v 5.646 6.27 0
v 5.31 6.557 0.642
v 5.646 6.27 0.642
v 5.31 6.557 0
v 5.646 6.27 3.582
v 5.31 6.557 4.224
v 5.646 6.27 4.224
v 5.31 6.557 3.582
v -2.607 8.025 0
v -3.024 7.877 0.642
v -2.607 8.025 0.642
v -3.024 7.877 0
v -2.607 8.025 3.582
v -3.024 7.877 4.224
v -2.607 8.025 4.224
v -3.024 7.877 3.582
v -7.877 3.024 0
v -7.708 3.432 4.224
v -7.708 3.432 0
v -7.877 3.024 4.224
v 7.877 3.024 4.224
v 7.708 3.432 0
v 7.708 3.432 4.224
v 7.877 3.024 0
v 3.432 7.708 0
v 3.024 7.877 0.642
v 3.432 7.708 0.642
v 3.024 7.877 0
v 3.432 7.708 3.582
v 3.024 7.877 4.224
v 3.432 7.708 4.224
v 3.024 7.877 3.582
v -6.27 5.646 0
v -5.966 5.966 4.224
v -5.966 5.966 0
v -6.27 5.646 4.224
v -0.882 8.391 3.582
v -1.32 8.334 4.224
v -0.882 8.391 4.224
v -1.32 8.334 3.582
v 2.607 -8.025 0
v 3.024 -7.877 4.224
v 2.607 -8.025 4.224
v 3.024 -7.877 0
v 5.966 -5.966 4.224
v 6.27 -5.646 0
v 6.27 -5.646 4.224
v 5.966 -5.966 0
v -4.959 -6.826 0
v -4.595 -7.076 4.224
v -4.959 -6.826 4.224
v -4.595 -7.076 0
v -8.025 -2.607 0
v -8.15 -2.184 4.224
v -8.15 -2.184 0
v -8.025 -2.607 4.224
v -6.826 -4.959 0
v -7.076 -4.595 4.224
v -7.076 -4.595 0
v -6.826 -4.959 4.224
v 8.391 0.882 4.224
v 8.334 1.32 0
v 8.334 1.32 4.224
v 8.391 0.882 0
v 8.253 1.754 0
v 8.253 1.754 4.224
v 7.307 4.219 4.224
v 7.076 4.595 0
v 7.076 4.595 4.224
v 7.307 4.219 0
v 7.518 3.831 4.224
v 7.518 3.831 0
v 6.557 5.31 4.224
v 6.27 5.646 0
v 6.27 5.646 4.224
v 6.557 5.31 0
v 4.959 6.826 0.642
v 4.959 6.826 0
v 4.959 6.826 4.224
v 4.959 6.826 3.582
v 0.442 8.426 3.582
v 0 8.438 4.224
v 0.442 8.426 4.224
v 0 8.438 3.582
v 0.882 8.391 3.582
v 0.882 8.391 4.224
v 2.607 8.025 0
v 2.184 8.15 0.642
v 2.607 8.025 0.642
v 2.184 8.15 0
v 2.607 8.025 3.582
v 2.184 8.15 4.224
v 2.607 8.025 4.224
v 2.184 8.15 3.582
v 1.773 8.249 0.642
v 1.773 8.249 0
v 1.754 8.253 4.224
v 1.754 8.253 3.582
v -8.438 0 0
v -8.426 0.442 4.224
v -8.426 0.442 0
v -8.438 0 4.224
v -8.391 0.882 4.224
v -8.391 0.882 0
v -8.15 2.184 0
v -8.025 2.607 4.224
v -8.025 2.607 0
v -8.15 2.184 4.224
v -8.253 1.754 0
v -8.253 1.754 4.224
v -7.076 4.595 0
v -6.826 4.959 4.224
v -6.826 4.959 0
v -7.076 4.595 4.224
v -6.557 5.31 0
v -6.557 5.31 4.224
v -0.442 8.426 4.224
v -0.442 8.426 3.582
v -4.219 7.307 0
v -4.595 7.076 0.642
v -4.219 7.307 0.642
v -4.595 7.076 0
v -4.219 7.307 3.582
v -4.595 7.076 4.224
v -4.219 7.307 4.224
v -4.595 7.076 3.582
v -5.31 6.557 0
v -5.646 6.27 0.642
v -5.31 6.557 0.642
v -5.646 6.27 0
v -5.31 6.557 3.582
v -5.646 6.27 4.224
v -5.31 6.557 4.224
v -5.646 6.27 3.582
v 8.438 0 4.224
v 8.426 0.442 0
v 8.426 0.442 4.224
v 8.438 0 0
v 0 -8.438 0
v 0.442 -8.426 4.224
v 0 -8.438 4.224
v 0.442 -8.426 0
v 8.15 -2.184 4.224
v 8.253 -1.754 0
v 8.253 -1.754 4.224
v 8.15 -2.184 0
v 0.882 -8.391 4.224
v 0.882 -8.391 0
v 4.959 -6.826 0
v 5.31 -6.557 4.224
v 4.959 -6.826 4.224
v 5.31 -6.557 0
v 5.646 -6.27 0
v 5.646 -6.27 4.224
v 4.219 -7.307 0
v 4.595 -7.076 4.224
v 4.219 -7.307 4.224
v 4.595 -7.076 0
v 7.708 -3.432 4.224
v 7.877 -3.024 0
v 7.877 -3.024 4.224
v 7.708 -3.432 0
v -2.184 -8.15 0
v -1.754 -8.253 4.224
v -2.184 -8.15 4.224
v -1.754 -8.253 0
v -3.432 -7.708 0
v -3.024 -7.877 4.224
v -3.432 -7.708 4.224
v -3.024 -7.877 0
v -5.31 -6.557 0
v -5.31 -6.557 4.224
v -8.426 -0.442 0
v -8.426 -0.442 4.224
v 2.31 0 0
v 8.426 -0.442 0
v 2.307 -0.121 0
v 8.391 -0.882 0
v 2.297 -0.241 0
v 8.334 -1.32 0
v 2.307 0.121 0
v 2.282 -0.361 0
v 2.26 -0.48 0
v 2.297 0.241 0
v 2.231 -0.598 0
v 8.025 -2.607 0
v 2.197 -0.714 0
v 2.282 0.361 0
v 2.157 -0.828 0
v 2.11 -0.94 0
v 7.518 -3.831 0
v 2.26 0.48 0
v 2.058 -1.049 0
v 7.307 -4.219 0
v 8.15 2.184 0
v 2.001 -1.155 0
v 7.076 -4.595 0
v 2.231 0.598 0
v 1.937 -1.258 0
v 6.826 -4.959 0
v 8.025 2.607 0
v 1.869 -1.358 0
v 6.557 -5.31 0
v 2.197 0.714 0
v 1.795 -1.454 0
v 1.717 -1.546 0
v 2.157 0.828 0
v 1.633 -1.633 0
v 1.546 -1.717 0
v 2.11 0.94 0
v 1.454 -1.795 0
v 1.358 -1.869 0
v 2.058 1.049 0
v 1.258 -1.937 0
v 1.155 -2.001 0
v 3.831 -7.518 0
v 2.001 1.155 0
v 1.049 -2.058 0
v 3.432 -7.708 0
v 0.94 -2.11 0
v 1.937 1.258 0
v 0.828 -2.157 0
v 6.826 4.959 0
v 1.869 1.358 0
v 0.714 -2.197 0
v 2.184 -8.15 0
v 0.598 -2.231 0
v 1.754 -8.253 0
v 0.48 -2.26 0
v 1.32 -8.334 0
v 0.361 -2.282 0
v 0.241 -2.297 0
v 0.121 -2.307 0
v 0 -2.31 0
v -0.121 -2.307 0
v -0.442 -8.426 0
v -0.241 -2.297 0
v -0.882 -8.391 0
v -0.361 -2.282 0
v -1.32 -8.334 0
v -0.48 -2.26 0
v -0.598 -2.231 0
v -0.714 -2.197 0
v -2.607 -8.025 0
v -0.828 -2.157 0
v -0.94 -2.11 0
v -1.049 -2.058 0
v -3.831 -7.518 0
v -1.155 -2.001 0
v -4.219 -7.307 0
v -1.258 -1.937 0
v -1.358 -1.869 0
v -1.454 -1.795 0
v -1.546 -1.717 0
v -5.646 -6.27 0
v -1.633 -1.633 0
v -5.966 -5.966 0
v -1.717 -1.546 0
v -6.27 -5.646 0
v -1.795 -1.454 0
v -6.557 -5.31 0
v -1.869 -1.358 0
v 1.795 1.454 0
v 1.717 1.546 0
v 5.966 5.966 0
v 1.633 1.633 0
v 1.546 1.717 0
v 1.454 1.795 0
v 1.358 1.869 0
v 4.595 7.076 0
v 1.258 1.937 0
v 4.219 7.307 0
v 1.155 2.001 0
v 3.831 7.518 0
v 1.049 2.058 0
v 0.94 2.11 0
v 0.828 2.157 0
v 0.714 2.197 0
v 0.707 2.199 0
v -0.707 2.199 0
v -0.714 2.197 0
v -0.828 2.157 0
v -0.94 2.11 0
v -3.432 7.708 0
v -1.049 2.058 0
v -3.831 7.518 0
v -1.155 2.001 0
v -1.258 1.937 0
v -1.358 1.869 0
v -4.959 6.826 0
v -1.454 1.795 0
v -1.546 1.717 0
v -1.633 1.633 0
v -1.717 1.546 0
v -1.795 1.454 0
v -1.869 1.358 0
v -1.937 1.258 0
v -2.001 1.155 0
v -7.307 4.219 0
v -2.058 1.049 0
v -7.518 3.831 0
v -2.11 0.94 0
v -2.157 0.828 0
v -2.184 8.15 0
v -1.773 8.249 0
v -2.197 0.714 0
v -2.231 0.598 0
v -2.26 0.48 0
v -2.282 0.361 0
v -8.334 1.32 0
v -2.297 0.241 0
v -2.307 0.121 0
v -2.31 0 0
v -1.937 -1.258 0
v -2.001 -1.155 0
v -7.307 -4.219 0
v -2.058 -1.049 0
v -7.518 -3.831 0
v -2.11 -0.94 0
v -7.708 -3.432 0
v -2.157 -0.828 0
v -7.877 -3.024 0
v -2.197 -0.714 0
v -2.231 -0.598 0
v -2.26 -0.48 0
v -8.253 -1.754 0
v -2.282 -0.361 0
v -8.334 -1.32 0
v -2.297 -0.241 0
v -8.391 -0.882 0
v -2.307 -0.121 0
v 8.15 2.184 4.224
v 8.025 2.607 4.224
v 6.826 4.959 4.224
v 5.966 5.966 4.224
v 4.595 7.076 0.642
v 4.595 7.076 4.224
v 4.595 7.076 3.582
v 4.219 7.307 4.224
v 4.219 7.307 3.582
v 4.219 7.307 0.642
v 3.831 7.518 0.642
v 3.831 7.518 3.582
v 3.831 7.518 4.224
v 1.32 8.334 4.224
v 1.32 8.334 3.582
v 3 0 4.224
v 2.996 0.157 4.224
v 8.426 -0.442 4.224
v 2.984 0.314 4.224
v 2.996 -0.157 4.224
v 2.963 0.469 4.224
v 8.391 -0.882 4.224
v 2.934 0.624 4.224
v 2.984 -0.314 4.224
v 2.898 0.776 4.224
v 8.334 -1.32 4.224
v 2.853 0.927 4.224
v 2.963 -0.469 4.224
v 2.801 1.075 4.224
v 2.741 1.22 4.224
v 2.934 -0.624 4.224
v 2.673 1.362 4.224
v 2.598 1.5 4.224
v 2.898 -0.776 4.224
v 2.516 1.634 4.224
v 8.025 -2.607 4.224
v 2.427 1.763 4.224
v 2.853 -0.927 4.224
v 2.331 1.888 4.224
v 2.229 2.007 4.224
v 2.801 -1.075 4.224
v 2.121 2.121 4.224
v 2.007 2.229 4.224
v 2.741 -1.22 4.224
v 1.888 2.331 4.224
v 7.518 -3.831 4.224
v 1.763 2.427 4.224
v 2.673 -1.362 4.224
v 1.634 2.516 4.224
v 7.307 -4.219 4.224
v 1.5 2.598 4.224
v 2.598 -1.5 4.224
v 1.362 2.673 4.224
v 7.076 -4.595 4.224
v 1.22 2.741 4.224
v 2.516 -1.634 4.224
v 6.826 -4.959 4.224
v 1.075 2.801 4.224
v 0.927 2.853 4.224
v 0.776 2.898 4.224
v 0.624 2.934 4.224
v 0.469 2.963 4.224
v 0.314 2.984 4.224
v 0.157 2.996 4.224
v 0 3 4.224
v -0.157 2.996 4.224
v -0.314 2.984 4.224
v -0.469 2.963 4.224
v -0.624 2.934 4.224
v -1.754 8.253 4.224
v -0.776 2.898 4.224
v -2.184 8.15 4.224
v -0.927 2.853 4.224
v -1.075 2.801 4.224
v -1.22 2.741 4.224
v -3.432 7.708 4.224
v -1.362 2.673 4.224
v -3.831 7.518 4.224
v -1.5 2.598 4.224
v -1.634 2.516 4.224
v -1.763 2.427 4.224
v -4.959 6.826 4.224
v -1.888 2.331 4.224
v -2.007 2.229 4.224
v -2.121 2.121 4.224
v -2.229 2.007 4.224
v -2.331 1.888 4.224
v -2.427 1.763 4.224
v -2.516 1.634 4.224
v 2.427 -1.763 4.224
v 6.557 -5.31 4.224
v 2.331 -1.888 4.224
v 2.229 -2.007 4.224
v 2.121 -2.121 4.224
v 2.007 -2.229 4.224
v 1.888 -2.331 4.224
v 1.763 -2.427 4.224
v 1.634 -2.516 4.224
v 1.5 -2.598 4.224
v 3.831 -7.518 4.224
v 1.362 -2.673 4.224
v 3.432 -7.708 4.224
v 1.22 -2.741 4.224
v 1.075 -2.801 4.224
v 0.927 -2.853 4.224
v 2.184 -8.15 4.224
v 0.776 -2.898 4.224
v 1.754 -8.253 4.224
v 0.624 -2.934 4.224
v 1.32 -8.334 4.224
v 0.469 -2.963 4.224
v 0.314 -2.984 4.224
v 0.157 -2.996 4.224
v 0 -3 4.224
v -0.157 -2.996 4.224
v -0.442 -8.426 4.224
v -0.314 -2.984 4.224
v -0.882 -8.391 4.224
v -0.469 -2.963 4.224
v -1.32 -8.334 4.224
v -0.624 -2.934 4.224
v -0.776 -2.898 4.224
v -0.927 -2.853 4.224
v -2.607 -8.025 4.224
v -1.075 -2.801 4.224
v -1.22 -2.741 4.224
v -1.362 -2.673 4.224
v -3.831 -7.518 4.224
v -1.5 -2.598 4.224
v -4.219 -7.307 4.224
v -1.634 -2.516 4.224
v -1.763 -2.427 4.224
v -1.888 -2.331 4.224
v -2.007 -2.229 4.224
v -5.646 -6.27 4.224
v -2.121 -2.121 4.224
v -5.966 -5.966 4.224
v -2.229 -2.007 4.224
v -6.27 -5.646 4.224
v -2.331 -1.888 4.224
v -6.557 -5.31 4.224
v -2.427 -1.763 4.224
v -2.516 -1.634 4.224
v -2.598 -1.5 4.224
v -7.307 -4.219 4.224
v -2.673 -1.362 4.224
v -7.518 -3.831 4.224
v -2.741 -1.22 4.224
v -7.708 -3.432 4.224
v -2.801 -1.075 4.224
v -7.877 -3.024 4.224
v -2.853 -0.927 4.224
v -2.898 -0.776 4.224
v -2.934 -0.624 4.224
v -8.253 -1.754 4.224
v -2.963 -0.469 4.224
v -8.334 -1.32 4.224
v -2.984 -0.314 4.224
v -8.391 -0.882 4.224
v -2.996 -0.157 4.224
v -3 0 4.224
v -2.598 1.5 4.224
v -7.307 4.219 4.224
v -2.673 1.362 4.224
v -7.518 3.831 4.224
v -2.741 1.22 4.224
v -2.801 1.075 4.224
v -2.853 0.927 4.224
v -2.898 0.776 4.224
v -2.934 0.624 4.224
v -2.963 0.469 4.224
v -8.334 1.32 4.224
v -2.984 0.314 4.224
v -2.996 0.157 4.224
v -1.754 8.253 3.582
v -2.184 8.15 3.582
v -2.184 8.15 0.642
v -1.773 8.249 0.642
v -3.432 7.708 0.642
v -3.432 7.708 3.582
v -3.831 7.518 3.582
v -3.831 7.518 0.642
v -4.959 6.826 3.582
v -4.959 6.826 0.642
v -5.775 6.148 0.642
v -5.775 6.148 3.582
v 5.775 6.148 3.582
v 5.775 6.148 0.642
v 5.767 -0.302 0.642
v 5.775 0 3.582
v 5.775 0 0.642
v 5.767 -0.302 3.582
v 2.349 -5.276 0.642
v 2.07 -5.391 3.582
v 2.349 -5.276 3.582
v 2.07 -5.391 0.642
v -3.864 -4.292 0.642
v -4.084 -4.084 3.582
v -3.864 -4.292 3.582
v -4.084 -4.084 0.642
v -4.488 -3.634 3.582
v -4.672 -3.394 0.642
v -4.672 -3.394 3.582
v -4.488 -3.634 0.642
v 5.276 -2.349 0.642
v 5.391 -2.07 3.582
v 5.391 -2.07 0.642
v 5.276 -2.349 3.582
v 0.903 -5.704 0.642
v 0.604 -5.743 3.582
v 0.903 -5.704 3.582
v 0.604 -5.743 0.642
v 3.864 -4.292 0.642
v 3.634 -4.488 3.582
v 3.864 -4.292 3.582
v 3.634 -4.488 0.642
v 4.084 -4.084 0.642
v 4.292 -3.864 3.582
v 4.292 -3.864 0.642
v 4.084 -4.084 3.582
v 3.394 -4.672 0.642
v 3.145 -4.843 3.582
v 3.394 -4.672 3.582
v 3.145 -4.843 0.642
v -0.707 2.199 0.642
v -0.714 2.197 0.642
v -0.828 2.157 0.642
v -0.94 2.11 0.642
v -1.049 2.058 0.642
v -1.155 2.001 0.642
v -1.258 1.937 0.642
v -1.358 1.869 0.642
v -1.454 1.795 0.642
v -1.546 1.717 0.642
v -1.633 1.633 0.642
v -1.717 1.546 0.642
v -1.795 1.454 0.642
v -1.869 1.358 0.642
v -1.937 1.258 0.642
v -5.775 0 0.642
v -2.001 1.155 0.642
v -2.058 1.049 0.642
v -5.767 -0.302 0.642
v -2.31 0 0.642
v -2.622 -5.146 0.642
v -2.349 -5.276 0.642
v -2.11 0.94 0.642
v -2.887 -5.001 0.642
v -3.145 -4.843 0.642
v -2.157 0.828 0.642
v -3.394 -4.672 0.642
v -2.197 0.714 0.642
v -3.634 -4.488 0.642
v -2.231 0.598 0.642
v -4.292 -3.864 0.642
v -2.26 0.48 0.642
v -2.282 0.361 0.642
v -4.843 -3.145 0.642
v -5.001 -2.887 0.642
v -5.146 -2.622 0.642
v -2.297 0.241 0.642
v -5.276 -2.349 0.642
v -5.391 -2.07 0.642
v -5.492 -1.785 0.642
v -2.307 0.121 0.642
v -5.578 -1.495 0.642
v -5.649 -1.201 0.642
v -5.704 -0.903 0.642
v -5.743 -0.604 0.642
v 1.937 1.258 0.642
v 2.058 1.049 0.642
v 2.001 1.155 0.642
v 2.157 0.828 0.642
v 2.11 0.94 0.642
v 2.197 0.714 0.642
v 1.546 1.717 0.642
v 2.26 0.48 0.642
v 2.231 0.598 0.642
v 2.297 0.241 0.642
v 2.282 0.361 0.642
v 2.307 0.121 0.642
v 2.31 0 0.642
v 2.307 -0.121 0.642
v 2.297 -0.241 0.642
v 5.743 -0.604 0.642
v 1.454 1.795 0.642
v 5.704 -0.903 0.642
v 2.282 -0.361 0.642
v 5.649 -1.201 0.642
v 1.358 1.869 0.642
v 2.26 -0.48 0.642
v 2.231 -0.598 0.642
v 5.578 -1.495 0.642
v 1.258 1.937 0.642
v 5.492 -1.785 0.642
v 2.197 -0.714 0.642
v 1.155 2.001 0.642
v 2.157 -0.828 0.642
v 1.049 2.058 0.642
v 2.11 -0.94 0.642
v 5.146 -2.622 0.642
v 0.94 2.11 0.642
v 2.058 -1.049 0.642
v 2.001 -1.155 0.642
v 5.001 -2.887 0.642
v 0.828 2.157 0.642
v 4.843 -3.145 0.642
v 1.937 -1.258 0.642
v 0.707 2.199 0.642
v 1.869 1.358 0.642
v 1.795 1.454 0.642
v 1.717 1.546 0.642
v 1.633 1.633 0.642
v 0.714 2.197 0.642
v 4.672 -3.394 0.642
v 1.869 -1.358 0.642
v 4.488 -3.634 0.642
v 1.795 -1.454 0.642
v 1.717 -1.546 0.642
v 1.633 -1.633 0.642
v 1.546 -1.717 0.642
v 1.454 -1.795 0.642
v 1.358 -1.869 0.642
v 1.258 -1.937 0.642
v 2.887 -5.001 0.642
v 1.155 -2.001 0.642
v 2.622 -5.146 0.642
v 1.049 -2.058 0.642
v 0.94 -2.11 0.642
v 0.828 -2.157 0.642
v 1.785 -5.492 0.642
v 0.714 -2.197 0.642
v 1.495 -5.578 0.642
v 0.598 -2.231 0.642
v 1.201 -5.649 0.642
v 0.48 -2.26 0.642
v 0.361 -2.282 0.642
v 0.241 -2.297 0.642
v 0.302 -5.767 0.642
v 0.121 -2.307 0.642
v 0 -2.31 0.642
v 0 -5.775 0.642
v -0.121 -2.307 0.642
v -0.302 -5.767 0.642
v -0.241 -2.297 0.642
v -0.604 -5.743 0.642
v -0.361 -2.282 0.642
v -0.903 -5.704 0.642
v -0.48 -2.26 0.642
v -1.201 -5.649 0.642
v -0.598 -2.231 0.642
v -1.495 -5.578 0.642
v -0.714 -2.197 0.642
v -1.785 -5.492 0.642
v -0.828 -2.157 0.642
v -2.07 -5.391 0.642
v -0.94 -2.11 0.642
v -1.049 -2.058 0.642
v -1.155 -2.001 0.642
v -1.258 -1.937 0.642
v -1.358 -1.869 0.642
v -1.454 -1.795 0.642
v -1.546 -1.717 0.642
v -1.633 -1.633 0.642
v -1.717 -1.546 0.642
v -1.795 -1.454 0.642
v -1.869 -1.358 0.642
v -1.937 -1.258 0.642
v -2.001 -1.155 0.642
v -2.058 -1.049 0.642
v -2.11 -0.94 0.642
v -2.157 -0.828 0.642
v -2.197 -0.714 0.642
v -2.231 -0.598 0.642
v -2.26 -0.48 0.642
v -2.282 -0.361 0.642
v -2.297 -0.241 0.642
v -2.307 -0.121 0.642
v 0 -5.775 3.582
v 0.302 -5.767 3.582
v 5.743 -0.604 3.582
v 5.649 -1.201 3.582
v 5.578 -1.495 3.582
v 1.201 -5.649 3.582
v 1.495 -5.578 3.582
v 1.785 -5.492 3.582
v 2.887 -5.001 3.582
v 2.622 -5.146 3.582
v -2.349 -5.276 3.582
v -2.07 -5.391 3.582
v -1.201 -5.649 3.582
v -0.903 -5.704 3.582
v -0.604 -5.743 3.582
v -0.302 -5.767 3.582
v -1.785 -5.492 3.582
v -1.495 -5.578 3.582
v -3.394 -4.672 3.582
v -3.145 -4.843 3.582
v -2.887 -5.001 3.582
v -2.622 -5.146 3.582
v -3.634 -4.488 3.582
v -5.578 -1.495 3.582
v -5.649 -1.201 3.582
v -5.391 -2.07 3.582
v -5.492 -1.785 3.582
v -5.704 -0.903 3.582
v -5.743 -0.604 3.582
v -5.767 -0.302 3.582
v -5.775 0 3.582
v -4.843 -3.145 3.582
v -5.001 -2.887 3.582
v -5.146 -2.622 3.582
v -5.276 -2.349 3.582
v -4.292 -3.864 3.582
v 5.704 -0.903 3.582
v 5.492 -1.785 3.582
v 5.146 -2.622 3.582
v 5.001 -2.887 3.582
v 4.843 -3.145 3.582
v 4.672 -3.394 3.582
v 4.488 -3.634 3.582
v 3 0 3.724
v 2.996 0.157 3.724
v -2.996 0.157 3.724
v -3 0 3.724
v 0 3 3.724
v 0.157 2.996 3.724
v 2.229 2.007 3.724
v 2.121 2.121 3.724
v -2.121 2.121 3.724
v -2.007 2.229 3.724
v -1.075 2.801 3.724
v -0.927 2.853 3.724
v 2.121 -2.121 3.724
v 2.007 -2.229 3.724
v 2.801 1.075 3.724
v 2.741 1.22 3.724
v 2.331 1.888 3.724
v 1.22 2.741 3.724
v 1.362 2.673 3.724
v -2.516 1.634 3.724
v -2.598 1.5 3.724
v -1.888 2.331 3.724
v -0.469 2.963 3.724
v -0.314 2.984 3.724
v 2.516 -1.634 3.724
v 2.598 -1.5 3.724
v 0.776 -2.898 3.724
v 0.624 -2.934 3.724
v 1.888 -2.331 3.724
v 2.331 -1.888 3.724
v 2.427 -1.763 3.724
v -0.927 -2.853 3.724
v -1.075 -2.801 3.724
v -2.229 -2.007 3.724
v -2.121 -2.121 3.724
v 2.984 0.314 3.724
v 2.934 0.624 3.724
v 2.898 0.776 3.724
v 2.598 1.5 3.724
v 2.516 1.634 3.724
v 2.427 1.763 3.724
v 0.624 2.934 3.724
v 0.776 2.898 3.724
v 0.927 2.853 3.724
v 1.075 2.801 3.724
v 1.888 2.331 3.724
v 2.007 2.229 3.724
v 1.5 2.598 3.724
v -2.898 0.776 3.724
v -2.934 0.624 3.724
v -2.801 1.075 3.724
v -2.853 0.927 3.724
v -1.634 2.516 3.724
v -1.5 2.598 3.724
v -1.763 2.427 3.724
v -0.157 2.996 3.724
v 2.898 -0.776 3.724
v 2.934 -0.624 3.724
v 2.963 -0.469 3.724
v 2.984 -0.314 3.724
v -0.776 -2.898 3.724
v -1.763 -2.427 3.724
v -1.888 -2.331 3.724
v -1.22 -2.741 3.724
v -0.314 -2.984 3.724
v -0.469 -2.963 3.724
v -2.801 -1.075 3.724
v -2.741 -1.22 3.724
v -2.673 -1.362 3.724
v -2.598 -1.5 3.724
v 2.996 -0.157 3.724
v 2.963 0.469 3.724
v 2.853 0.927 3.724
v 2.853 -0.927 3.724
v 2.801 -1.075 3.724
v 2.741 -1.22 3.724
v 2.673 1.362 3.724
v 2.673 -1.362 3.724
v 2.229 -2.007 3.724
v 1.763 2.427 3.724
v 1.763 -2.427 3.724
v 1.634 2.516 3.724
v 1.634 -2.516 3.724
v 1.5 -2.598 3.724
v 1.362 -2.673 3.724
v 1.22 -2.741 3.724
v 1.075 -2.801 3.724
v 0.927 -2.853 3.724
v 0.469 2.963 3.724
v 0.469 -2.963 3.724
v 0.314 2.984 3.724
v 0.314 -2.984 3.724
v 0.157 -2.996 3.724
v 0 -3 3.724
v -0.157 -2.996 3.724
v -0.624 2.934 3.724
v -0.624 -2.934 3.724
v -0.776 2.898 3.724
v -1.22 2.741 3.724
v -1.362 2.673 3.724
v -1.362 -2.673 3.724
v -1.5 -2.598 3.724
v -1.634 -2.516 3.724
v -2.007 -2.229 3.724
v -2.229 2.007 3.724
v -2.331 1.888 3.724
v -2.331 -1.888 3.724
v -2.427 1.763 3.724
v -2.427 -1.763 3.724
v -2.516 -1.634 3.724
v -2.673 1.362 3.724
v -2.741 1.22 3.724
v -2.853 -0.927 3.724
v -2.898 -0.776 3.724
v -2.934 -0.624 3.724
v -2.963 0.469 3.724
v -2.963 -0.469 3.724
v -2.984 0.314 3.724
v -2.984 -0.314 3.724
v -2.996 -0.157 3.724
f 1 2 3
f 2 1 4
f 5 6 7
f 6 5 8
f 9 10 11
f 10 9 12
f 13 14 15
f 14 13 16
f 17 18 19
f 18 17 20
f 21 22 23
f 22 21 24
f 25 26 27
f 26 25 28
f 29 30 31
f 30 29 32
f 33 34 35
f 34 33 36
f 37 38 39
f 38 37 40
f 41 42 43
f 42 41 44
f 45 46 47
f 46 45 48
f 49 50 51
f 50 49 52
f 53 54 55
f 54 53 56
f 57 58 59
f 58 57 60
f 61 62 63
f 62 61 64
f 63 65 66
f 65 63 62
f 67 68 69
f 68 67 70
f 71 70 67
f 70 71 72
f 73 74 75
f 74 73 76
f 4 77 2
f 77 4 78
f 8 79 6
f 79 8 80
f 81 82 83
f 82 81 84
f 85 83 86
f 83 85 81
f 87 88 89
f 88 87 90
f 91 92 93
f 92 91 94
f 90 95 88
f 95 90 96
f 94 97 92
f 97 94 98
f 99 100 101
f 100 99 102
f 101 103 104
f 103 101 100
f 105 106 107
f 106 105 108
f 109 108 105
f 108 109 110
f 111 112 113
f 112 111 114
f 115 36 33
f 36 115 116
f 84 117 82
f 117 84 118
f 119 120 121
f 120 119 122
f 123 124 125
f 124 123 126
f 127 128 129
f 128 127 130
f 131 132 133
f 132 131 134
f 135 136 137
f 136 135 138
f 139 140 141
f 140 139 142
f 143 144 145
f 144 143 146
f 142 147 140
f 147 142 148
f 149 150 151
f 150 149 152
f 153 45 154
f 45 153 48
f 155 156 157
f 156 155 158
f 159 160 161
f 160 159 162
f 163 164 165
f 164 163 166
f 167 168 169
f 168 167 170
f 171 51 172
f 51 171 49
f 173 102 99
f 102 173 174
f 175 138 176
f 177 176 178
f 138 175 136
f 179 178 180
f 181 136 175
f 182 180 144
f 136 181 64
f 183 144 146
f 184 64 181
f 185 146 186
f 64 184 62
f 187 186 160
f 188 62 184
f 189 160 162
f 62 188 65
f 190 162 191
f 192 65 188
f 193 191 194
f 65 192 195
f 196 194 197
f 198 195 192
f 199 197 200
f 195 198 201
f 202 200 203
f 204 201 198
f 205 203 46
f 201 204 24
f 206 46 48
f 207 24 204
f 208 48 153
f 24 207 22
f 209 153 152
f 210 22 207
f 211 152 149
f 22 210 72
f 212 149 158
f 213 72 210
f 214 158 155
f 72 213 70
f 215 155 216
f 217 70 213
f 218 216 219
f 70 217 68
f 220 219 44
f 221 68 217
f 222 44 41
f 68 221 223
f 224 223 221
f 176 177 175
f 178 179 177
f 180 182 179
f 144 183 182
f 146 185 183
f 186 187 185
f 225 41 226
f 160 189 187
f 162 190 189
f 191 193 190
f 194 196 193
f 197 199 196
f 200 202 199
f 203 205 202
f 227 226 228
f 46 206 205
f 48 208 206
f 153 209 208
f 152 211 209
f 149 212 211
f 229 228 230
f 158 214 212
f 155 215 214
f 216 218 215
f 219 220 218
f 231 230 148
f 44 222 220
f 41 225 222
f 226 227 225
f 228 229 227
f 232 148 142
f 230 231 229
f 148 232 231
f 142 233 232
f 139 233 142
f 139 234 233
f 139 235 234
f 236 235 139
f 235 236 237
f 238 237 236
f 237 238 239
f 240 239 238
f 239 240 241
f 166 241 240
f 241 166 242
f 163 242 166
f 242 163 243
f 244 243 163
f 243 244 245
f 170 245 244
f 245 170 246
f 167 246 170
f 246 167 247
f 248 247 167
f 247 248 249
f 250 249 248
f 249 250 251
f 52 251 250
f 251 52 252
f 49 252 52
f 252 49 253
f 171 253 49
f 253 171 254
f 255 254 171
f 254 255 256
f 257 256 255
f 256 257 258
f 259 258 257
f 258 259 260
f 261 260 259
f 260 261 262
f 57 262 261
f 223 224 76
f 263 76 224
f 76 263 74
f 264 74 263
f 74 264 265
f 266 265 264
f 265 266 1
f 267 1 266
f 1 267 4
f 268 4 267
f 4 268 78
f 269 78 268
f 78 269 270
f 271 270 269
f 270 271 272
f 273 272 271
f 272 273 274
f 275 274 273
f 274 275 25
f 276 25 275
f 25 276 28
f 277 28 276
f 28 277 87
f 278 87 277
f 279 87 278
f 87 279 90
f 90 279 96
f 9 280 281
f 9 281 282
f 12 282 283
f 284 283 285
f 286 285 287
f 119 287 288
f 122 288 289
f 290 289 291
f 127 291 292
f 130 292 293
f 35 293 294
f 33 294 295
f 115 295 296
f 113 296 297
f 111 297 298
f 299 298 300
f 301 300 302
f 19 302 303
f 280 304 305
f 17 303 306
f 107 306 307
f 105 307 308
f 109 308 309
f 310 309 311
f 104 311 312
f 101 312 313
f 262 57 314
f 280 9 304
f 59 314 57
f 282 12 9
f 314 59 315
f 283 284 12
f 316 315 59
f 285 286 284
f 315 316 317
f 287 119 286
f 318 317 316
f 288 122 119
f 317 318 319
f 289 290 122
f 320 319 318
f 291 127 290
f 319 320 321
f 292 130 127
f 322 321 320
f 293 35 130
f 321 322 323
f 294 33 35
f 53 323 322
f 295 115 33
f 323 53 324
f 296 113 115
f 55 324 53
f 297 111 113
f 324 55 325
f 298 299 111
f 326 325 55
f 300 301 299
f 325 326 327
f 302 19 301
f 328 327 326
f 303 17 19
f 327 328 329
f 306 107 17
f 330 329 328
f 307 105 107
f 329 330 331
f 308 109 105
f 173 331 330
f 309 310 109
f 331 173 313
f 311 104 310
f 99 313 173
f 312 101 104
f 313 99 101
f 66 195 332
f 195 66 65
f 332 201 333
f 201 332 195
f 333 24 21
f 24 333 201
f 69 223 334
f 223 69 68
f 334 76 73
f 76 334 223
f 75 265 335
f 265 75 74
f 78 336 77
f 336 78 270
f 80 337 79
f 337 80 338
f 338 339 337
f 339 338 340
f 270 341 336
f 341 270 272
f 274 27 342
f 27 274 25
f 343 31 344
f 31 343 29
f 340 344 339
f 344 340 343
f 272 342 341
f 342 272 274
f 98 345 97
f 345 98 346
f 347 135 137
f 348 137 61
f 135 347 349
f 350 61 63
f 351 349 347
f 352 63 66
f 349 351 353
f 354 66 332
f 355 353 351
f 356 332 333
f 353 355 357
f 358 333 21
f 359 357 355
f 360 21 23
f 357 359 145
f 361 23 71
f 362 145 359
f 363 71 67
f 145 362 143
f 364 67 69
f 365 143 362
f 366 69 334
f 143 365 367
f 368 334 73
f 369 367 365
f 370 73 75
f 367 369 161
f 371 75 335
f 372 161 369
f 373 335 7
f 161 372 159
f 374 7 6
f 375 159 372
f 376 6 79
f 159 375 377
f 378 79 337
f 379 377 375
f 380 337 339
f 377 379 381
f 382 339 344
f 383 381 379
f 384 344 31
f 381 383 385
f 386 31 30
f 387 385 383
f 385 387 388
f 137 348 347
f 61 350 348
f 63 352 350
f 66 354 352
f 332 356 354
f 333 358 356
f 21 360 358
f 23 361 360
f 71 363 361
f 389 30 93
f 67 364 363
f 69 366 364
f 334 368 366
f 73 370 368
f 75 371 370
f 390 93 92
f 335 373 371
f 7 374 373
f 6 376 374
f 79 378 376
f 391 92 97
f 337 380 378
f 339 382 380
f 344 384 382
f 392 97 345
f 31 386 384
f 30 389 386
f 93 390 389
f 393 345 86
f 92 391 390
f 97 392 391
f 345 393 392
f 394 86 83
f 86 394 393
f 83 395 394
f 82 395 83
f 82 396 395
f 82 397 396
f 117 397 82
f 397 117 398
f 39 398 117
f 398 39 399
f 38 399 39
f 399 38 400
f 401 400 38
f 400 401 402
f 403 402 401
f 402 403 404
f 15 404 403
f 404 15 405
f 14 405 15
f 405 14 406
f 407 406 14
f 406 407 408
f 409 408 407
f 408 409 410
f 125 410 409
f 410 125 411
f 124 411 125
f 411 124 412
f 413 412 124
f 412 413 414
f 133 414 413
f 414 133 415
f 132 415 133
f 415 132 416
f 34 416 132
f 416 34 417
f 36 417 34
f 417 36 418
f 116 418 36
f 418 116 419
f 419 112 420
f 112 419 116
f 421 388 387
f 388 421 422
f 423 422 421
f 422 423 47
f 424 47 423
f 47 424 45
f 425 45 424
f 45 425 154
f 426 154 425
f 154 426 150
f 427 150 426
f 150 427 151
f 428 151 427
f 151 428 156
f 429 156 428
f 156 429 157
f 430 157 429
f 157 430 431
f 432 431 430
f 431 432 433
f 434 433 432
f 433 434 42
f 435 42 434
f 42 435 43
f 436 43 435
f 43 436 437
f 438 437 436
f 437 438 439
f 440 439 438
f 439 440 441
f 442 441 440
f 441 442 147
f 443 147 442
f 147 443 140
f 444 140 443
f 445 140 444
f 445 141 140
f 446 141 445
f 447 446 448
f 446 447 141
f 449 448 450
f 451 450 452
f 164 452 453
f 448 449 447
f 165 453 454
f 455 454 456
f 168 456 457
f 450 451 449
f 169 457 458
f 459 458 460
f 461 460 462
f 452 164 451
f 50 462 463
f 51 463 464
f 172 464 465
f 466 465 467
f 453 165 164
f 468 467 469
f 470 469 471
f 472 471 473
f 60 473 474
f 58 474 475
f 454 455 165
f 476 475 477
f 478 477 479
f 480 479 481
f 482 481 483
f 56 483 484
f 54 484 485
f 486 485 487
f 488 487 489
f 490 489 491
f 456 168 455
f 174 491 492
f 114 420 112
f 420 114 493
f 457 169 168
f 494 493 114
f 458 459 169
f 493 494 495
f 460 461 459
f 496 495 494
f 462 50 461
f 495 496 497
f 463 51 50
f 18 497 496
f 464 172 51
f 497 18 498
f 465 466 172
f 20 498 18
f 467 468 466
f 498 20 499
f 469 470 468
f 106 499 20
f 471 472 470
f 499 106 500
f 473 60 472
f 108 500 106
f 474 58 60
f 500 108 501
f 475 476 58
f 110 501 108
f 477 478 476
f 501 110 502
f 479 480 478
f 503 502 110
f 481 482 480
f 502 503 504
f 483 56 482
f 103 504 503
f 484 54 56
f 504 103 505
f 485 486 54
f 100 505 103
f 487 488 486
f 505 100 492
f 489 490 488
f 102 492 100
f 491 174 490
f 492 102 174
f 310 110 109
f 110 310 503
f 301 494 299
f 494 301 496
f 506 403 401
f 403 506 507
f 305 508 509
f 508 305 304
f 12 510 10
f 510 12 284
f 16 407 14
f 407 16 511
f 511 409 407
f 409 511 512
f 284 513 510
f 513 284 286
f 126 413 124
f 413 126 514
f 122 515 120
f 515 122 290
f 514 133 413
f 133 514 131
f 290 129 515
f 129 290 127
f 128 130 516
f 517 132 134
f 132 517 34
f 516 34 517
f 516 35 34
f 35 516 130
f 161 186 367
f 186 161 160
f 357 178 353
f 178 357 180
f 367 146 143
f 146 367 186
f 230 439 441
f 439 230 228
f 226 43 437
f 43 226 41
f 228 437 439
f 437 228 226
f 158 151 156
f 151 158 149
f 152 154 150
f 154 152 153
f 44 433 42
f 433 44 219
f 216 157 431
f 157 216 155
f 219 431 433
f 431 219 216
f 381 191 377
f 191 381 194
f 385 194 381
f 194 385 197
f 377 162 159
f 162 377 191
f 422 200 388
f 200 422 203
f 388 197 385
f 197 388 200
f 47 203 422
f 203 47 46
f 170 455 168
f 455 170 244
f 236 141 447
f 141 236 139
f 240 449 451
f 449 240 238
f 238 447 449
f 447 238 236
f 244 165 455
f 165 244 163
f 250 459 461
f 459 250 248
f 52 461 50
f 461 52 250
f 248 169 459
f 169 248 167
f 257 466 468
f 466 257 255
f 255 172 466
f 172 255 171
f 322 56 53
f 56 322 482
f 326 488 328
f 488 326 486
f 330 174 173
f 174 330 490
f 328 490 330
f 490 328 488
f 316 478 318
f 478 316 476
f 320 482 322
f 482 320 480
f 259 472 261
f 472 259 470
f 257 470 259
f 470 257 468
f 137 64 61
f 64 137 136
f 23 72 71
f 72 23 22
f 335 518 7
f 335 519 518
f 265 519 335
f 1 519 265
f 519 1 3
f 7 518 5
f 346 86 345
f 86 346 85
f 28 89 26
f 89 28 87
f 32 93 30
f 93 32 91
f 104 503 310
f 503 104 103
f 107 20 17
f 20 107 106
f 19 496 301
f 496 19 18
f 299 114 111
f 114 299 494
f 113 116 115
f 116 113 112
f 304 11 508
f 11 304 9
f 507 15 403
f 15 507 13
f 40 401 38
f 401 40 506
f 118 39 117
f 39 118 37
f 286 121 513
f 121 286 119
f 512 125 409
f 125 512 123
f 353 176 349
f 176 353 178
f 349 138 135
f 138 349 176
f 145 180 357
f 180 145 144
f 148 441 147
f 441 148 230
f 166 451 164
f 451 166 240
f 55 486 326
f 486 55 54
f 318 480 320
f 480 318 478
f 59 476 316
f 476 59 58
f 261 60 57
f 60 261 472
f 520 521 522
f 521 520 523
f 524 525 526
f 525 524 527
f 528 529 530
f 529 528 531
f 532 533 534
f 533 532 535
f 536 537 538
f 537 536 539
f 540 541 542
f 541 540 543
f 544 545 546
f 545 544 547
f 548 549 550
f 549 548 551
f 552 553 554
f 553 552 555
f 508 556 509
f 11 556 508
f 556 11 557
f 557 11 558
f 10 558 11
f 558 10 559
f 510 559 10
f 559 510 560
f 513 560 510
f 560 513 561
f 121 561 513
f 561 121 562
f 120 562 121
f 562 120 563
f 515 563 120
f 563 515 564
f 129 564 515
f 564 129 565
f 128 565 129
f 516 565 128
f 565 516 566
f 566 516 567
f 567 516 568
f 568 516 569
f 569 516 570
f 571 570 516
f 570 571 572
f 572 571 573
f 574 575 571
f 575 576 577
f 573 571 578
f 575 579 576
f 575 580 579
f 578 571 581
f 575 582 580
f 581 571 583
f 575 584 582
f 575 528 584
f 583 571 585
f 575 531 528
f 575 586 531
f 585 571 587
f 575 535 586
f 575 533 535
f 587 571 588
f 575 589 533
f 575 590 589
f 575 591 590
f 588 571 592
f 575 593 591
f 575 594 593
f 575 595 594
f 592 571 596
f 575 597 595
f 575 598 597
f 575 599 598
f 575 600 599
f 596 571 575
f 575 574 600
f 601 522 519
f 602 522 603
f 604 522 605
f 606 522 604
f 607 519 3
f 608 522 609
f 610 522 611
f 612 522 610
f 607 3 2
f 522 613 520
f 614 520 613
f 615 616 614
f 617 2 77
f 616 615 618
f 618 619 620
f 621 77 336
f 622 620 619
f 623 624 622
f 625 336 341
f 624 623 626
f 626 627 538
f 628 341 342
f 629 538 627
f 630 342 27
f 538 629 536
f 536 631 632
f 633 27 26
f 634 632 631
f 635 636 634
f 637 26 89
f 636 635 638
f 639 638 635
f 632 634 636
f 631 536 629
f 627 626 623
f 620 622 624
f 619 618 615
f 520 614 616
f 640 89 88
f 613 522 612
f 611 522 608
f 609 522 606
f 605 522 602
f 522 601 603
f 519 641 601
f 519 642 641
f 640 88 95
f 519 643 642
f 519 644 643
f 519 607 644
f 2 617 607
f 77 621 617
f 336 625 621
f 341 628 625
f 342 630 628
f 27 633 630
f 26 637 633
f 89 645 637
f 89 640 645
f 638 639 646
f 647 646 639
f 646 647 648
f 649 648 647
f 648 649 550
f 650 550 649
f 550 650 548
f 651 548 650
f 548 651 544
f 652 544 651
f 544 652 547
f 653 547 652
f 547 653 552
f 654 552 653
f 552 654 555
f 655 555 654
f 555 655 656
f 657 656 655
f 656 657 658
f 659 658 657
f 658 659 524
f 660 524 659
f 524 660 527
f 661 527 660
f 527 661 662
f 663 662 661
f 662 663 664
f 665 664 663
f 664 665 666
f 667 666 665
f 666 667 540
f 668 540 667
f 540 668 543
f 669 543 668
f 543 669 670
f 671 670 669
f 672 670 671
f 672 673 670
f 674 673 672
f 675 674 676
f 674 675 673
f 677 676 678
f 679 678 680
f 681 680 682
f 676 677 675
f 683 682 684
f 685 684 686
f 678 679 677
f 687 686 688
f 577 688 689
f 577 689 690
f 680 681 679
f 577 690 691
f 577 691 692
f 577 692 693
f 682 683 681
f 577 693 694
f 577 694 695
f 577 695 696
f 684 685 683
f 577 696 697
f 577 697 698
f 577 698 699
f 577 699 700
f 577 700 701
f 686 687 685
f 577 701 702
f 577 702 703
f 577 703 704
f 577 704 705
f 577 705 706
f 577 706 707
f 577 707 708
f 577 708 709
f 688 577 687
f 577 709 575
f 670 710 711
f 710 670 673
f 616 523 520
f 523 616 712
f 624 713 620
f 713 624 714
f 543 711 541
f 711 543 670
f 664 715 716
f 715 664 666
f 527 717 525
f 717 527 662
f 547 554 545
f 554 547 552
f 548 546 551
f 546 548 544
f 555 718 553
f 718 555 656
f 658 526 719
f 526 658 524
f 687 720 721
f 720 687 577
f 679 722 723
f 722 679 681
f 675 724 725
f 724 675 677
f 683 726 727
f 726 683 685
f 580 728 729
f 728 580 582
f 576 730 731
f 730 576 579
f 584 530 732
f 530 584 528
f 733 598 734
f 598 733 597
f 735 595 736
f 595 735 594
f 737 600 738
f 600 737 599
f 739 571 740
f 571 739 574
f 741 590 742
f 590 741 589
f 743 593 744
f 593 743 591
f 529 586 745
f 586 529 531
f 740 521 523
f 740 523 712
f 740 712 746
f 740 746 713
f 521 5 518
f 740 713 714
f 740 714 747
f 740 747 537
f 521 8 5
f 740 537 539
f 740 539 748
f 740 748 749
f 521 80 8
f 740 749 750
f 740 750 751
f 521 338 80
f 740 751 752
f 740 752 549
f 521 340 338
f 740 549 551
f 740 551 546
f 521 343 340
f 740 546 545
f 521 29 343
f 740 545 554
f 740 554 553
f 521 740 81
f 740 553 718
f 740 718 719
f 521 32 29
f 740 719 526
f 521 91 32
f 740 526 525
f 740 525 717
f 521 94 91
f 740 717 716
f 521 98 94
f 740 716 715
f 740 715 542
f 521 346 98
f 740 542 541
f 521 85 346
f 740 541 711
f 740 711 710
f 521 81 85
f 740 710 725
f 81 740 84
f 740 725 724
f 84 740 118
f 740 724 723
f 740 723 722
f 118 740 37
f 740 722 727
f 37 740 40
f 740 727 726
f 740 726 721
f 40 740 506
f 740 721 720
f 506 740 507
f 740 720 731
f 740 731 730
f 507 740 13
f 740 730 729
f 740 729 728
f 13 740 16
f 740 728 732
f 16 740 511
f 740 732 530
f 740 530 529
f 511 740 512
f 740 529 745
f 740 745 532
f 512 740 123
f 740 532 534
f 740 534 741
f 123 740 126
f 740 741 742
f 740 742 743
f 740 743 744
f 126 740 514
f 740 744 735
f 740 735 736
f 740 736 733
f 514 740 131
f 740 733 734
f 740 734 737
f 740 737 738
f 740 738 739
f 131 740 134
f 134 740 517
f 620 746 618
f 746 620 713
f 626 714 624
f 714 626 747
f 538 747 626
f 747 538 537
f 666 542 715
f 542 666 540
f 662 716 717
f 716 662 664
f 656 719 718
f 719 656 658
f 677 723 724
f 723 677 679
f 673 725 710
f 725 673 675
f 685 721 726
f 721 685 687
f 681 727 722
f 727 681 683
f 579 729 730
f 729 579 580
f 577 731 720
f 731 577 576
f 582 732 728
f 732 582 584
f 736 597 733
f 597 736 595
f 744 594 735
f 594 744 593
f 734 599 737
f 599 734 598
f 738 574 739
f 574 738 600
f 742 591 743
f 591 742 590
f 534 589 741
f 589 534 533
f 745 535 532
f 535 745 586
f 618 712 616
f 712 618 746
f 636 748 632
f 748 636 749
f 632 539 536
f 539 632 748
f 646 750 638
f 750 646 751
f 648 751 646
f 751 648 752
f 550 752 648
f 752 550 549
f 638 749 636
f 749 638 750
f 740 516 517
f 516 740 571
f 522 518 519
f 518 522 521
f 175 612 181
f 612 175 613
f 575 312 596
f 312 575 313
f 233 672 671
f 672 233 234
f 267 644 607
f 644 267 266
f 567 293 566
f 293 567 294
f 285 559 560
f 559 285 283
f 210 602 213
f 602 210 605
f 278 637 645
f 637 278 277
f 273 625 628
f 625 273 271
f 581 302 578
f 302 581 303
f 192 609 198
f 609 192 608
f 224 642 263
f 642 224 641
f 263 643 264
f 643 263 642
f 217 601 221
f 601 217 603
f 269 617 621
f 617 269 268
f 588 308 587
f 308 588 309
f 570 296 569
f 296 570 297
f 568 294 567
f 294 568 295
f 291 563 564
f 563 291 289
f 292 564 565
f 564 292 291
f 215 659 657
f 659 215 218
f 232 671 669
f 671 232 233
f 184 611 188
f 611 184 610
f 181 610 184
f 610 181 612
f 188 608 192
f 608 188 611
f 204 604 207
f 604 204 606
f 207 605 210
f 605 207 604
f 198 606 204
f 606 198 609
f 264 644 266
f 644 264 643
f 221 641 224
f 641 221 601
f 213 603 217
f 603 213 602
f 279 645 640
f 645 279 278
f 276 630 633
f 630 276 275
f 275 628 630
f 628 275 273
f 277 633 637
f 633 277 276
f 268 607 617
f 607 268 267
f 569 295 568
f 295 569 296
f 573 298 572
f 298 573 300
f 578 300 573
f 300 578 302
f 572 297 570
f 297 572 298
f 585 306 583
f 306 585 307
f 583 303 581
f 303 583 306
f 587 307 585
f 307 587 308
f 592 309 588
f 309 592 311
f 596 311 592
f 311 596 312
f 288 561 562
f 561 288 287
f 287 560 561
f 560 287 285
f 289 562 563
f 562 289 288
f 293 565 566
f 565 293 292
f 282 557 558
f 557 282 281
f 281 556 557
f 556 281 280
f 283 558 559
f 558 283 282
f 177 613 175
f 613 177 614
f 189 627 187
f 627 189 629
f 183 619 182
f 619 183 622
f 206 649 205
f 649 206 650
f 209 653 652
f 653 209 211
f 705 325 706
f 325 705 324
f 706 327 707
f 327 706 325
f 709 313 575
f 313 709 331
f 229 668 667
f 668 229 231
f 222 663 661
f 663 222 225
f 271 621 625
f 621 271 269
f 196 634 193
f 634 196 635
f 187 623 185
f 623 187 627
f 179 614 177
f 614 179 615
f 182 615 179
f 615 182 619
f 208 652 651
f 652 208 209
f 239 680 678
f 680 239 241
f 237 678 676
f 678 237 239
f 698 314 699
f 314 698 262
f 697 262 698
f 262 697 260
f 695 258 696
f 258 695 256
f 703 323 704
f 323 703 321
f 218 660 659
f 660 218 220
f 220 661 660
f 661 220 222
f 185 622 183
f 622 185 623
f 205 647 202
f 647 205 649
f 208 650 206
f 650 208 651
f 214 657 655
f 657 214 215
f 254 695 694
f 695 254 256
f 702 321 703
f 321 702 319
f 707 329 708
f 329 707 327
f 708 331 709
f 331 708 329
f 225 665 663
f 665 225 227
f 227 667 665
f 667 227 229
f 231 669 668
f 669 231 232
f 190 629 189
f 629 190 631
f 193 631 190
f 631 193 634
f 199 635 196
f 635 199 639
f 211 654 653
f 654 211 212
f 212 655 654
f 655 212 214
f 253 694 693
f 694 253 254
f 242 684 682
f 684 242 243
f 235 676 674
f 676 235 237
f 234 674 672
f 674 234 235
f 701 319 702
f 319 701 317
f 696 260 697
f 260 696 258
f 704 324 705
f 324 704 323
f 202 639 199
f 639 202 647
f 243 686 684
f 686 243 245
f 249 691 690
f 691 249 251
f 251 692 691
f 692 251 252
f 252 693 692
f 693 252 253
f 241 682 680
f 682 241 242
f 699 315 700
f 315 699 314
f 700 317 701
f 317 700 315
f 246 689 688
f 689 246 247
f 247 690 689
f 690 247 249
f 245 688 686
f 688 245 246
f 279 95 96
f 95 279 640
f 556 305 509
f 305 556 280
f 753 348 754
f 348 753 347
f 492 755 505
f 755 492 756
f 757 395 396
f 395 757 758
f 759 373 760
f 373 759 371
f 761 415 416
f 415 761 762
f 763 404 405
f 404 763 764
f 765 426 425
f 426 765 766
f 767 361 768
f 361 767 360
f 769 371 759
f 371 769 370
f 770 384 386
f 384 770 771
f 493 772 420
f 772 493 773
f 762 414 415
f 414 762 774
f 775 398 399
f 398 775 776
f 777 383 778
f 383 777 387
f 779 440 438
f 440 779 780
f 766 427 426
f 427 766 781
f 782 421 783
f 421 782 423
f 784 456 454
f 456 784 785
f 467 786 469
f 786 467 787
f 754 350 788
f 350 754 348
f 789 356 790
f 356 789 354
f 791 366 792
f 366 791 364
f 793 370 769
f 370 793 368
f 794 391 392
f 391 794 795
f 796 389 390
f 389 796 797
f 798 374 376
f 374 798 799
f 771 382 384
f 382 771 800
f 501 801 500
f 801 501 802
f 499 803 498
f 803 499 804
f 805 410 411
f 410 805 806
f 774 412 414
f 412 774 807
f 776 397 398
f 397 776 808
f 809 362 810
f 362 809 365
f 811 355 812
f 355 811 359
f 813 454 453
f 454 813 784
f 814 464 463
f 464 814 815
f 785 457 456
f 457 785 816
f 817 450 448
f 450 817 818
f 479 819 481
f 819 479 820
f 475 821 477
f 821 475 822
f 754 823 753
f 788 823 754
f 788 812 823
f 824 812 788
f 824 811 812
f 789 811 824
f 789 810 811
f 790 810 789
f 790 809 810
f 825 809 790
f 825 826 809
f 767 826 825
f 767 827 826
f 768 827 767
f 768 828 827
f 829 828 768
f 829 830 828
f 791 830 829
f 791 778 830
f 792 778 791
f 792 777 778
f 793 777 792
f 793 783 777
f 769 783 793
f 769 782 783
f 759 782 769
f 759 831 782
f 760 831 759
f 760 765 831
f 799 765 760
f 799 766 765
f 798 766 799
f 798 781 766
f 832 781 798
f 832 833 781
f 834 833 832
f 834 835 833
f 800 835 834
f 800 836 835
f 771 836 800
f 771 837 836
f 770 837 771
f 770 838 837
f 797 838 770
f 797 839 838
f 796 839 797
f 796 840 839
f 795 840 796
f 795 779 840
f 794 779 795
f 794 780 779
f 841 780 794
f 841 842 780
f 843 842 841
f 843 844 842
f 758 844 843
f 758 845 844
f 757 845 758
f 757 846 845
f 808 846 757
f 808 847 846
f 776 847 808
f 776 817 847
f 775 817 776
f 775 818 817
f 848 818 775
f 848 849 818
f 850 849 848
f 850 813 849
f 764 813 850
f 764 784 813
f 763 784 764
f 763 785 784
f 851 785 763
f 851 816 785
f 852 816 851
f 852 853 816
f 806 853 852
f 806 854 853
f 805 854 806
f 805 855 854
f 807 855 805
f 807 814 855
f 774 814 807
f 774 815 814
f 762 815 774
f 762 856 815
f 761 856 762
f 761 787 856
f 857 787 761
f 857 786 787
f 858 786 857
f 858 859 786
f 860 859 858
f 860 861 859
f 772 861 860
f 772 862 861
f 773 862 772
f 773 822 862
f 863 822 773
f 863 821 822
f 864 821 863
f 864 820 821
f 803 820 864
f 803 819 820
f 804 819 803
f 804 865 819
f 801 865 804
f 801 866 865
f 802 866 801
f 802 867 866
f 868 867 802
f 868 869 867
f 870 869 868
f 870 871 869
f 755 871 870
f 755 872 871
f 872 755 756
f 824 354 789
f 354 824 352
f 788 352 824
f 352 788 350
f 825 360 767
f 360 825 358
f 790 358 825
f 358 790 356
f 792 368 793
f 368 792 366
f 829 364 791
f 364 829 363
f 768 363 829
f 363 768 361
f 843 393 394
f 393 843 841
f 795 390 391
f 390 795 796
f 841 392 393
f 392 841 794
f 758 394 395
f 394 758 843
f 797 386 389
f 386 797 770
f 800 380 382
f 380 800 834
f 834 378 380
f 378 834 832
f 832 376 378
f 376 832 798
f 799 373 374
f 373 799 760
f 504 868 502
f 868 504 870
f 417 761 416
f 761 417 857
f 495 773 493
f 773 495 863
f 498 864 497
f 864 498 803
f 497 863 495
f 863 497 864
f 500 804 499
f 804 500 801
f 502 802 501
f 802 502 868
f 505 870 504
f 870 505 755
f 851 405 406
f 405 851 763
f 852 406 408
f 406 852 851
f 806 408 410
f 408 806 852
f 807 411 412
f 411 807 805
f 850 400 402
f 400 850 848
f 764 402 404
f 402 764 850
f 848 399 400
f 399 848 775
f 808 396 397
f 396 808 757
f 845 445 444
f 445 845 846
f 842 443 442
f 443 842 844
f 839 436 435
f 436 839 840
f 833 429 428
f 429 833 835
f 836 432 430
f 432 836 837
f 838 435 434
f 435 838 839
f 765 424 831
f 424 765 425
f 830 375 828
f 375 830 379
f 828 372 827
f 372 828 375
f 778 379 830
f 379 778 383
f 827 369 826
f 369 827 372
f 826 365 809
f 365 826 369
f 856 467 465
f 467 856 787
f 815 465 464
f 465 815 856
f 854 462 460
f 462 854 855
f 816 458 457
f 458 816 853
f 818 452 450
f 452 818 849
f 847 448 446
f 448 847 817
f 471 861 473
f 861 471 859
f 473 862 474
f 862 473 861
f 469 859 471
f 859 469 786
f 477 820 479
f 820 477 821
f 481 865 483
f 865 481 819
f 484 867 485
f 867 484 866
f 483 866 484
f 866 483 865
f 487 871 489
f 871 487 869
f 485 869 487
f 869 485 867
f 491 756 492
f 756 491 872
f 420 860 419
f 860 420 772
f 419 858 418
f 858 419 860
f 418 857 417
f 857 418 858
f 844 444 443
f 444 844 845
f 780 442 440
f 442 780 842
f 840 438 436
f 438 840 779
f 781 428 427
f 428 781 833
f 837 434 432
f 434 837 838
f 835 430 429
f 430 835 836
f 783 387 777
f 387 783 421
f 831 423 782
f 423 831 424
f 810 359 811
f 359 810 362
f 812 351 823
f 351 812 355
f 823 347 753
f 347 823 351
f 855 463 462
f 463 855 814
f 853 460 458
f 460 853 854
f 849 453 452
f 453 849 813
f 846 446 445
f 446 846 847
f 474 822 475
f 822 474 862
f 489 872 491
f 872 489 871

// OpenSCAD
// ButtonMagnetAdapter_Inside_v1C.scad
// Copyright 2022 by Ronald L. Nelson II
// ron.nelson.ii@gmail.com
// sybarite.us

// All measurements are in MM

//The Belfry OpenSCAD Library
//https://github.com/revarbat/BOSL
include <BOSL/constants.scad>
use <BOSL/shapes.scad>
use <BOSL/transforms.scad>

buttonHeight = 2.64;
buttonDiameter = 11.25;
buttonWiggleRoom = 0.30;

magnetDiameter = 6;
magnetHeight = 2;

adapterHeight = (buttonHeight * 1.60);
$fn=120; //default circle smoothness


difference(){

  union(){
  //base object
  color("blue") cylinder(h=adapterHeight, d=buttonDiameter*1.5);
  }

  //subtractions ---------------------------------------

  //subtract out space for button in middle
  color("red") 
   translate([0,0,(adapterHeight/2)-((buttonHeight+buttonWiggleRoom)/2)])
    cylinder(h=(buttonHeight+buttonWiggleRoom), d=(buttonDiameter+buttonWiggleRoom));

  //subtract out slot for button to slide into
  color("pink")
   translate([-((buttonDiameter+buttonWiggleRoom)/2), 0, (adapterHeight/2)-((buttonHeight+buttonWiggleRoom)/2)])
    cube([(buttonDiameter+buttonWiggleRoom), (buttonDiameter*1.5), (buttonHeight+buttonWiggleRoom)]);
  
  //subtract out keyhole slot for button thread attachment
  color("hotpink") cylinder(h=buttonHeight, d=(buttonDiameter+buttonWiggleRoom)*0.40);
  color("hotpink") translate([0,63,0]) rotate([90,0, 0]) teardrop(r=buttonDiameter, h=2, ang=10);
  
  //subtract out magnet mounting
  color("deeppink") translate([0,0,adapterHeight-0.50]) cylinder(h=magnetHeight, d=magnetDiameter);

}//difference
